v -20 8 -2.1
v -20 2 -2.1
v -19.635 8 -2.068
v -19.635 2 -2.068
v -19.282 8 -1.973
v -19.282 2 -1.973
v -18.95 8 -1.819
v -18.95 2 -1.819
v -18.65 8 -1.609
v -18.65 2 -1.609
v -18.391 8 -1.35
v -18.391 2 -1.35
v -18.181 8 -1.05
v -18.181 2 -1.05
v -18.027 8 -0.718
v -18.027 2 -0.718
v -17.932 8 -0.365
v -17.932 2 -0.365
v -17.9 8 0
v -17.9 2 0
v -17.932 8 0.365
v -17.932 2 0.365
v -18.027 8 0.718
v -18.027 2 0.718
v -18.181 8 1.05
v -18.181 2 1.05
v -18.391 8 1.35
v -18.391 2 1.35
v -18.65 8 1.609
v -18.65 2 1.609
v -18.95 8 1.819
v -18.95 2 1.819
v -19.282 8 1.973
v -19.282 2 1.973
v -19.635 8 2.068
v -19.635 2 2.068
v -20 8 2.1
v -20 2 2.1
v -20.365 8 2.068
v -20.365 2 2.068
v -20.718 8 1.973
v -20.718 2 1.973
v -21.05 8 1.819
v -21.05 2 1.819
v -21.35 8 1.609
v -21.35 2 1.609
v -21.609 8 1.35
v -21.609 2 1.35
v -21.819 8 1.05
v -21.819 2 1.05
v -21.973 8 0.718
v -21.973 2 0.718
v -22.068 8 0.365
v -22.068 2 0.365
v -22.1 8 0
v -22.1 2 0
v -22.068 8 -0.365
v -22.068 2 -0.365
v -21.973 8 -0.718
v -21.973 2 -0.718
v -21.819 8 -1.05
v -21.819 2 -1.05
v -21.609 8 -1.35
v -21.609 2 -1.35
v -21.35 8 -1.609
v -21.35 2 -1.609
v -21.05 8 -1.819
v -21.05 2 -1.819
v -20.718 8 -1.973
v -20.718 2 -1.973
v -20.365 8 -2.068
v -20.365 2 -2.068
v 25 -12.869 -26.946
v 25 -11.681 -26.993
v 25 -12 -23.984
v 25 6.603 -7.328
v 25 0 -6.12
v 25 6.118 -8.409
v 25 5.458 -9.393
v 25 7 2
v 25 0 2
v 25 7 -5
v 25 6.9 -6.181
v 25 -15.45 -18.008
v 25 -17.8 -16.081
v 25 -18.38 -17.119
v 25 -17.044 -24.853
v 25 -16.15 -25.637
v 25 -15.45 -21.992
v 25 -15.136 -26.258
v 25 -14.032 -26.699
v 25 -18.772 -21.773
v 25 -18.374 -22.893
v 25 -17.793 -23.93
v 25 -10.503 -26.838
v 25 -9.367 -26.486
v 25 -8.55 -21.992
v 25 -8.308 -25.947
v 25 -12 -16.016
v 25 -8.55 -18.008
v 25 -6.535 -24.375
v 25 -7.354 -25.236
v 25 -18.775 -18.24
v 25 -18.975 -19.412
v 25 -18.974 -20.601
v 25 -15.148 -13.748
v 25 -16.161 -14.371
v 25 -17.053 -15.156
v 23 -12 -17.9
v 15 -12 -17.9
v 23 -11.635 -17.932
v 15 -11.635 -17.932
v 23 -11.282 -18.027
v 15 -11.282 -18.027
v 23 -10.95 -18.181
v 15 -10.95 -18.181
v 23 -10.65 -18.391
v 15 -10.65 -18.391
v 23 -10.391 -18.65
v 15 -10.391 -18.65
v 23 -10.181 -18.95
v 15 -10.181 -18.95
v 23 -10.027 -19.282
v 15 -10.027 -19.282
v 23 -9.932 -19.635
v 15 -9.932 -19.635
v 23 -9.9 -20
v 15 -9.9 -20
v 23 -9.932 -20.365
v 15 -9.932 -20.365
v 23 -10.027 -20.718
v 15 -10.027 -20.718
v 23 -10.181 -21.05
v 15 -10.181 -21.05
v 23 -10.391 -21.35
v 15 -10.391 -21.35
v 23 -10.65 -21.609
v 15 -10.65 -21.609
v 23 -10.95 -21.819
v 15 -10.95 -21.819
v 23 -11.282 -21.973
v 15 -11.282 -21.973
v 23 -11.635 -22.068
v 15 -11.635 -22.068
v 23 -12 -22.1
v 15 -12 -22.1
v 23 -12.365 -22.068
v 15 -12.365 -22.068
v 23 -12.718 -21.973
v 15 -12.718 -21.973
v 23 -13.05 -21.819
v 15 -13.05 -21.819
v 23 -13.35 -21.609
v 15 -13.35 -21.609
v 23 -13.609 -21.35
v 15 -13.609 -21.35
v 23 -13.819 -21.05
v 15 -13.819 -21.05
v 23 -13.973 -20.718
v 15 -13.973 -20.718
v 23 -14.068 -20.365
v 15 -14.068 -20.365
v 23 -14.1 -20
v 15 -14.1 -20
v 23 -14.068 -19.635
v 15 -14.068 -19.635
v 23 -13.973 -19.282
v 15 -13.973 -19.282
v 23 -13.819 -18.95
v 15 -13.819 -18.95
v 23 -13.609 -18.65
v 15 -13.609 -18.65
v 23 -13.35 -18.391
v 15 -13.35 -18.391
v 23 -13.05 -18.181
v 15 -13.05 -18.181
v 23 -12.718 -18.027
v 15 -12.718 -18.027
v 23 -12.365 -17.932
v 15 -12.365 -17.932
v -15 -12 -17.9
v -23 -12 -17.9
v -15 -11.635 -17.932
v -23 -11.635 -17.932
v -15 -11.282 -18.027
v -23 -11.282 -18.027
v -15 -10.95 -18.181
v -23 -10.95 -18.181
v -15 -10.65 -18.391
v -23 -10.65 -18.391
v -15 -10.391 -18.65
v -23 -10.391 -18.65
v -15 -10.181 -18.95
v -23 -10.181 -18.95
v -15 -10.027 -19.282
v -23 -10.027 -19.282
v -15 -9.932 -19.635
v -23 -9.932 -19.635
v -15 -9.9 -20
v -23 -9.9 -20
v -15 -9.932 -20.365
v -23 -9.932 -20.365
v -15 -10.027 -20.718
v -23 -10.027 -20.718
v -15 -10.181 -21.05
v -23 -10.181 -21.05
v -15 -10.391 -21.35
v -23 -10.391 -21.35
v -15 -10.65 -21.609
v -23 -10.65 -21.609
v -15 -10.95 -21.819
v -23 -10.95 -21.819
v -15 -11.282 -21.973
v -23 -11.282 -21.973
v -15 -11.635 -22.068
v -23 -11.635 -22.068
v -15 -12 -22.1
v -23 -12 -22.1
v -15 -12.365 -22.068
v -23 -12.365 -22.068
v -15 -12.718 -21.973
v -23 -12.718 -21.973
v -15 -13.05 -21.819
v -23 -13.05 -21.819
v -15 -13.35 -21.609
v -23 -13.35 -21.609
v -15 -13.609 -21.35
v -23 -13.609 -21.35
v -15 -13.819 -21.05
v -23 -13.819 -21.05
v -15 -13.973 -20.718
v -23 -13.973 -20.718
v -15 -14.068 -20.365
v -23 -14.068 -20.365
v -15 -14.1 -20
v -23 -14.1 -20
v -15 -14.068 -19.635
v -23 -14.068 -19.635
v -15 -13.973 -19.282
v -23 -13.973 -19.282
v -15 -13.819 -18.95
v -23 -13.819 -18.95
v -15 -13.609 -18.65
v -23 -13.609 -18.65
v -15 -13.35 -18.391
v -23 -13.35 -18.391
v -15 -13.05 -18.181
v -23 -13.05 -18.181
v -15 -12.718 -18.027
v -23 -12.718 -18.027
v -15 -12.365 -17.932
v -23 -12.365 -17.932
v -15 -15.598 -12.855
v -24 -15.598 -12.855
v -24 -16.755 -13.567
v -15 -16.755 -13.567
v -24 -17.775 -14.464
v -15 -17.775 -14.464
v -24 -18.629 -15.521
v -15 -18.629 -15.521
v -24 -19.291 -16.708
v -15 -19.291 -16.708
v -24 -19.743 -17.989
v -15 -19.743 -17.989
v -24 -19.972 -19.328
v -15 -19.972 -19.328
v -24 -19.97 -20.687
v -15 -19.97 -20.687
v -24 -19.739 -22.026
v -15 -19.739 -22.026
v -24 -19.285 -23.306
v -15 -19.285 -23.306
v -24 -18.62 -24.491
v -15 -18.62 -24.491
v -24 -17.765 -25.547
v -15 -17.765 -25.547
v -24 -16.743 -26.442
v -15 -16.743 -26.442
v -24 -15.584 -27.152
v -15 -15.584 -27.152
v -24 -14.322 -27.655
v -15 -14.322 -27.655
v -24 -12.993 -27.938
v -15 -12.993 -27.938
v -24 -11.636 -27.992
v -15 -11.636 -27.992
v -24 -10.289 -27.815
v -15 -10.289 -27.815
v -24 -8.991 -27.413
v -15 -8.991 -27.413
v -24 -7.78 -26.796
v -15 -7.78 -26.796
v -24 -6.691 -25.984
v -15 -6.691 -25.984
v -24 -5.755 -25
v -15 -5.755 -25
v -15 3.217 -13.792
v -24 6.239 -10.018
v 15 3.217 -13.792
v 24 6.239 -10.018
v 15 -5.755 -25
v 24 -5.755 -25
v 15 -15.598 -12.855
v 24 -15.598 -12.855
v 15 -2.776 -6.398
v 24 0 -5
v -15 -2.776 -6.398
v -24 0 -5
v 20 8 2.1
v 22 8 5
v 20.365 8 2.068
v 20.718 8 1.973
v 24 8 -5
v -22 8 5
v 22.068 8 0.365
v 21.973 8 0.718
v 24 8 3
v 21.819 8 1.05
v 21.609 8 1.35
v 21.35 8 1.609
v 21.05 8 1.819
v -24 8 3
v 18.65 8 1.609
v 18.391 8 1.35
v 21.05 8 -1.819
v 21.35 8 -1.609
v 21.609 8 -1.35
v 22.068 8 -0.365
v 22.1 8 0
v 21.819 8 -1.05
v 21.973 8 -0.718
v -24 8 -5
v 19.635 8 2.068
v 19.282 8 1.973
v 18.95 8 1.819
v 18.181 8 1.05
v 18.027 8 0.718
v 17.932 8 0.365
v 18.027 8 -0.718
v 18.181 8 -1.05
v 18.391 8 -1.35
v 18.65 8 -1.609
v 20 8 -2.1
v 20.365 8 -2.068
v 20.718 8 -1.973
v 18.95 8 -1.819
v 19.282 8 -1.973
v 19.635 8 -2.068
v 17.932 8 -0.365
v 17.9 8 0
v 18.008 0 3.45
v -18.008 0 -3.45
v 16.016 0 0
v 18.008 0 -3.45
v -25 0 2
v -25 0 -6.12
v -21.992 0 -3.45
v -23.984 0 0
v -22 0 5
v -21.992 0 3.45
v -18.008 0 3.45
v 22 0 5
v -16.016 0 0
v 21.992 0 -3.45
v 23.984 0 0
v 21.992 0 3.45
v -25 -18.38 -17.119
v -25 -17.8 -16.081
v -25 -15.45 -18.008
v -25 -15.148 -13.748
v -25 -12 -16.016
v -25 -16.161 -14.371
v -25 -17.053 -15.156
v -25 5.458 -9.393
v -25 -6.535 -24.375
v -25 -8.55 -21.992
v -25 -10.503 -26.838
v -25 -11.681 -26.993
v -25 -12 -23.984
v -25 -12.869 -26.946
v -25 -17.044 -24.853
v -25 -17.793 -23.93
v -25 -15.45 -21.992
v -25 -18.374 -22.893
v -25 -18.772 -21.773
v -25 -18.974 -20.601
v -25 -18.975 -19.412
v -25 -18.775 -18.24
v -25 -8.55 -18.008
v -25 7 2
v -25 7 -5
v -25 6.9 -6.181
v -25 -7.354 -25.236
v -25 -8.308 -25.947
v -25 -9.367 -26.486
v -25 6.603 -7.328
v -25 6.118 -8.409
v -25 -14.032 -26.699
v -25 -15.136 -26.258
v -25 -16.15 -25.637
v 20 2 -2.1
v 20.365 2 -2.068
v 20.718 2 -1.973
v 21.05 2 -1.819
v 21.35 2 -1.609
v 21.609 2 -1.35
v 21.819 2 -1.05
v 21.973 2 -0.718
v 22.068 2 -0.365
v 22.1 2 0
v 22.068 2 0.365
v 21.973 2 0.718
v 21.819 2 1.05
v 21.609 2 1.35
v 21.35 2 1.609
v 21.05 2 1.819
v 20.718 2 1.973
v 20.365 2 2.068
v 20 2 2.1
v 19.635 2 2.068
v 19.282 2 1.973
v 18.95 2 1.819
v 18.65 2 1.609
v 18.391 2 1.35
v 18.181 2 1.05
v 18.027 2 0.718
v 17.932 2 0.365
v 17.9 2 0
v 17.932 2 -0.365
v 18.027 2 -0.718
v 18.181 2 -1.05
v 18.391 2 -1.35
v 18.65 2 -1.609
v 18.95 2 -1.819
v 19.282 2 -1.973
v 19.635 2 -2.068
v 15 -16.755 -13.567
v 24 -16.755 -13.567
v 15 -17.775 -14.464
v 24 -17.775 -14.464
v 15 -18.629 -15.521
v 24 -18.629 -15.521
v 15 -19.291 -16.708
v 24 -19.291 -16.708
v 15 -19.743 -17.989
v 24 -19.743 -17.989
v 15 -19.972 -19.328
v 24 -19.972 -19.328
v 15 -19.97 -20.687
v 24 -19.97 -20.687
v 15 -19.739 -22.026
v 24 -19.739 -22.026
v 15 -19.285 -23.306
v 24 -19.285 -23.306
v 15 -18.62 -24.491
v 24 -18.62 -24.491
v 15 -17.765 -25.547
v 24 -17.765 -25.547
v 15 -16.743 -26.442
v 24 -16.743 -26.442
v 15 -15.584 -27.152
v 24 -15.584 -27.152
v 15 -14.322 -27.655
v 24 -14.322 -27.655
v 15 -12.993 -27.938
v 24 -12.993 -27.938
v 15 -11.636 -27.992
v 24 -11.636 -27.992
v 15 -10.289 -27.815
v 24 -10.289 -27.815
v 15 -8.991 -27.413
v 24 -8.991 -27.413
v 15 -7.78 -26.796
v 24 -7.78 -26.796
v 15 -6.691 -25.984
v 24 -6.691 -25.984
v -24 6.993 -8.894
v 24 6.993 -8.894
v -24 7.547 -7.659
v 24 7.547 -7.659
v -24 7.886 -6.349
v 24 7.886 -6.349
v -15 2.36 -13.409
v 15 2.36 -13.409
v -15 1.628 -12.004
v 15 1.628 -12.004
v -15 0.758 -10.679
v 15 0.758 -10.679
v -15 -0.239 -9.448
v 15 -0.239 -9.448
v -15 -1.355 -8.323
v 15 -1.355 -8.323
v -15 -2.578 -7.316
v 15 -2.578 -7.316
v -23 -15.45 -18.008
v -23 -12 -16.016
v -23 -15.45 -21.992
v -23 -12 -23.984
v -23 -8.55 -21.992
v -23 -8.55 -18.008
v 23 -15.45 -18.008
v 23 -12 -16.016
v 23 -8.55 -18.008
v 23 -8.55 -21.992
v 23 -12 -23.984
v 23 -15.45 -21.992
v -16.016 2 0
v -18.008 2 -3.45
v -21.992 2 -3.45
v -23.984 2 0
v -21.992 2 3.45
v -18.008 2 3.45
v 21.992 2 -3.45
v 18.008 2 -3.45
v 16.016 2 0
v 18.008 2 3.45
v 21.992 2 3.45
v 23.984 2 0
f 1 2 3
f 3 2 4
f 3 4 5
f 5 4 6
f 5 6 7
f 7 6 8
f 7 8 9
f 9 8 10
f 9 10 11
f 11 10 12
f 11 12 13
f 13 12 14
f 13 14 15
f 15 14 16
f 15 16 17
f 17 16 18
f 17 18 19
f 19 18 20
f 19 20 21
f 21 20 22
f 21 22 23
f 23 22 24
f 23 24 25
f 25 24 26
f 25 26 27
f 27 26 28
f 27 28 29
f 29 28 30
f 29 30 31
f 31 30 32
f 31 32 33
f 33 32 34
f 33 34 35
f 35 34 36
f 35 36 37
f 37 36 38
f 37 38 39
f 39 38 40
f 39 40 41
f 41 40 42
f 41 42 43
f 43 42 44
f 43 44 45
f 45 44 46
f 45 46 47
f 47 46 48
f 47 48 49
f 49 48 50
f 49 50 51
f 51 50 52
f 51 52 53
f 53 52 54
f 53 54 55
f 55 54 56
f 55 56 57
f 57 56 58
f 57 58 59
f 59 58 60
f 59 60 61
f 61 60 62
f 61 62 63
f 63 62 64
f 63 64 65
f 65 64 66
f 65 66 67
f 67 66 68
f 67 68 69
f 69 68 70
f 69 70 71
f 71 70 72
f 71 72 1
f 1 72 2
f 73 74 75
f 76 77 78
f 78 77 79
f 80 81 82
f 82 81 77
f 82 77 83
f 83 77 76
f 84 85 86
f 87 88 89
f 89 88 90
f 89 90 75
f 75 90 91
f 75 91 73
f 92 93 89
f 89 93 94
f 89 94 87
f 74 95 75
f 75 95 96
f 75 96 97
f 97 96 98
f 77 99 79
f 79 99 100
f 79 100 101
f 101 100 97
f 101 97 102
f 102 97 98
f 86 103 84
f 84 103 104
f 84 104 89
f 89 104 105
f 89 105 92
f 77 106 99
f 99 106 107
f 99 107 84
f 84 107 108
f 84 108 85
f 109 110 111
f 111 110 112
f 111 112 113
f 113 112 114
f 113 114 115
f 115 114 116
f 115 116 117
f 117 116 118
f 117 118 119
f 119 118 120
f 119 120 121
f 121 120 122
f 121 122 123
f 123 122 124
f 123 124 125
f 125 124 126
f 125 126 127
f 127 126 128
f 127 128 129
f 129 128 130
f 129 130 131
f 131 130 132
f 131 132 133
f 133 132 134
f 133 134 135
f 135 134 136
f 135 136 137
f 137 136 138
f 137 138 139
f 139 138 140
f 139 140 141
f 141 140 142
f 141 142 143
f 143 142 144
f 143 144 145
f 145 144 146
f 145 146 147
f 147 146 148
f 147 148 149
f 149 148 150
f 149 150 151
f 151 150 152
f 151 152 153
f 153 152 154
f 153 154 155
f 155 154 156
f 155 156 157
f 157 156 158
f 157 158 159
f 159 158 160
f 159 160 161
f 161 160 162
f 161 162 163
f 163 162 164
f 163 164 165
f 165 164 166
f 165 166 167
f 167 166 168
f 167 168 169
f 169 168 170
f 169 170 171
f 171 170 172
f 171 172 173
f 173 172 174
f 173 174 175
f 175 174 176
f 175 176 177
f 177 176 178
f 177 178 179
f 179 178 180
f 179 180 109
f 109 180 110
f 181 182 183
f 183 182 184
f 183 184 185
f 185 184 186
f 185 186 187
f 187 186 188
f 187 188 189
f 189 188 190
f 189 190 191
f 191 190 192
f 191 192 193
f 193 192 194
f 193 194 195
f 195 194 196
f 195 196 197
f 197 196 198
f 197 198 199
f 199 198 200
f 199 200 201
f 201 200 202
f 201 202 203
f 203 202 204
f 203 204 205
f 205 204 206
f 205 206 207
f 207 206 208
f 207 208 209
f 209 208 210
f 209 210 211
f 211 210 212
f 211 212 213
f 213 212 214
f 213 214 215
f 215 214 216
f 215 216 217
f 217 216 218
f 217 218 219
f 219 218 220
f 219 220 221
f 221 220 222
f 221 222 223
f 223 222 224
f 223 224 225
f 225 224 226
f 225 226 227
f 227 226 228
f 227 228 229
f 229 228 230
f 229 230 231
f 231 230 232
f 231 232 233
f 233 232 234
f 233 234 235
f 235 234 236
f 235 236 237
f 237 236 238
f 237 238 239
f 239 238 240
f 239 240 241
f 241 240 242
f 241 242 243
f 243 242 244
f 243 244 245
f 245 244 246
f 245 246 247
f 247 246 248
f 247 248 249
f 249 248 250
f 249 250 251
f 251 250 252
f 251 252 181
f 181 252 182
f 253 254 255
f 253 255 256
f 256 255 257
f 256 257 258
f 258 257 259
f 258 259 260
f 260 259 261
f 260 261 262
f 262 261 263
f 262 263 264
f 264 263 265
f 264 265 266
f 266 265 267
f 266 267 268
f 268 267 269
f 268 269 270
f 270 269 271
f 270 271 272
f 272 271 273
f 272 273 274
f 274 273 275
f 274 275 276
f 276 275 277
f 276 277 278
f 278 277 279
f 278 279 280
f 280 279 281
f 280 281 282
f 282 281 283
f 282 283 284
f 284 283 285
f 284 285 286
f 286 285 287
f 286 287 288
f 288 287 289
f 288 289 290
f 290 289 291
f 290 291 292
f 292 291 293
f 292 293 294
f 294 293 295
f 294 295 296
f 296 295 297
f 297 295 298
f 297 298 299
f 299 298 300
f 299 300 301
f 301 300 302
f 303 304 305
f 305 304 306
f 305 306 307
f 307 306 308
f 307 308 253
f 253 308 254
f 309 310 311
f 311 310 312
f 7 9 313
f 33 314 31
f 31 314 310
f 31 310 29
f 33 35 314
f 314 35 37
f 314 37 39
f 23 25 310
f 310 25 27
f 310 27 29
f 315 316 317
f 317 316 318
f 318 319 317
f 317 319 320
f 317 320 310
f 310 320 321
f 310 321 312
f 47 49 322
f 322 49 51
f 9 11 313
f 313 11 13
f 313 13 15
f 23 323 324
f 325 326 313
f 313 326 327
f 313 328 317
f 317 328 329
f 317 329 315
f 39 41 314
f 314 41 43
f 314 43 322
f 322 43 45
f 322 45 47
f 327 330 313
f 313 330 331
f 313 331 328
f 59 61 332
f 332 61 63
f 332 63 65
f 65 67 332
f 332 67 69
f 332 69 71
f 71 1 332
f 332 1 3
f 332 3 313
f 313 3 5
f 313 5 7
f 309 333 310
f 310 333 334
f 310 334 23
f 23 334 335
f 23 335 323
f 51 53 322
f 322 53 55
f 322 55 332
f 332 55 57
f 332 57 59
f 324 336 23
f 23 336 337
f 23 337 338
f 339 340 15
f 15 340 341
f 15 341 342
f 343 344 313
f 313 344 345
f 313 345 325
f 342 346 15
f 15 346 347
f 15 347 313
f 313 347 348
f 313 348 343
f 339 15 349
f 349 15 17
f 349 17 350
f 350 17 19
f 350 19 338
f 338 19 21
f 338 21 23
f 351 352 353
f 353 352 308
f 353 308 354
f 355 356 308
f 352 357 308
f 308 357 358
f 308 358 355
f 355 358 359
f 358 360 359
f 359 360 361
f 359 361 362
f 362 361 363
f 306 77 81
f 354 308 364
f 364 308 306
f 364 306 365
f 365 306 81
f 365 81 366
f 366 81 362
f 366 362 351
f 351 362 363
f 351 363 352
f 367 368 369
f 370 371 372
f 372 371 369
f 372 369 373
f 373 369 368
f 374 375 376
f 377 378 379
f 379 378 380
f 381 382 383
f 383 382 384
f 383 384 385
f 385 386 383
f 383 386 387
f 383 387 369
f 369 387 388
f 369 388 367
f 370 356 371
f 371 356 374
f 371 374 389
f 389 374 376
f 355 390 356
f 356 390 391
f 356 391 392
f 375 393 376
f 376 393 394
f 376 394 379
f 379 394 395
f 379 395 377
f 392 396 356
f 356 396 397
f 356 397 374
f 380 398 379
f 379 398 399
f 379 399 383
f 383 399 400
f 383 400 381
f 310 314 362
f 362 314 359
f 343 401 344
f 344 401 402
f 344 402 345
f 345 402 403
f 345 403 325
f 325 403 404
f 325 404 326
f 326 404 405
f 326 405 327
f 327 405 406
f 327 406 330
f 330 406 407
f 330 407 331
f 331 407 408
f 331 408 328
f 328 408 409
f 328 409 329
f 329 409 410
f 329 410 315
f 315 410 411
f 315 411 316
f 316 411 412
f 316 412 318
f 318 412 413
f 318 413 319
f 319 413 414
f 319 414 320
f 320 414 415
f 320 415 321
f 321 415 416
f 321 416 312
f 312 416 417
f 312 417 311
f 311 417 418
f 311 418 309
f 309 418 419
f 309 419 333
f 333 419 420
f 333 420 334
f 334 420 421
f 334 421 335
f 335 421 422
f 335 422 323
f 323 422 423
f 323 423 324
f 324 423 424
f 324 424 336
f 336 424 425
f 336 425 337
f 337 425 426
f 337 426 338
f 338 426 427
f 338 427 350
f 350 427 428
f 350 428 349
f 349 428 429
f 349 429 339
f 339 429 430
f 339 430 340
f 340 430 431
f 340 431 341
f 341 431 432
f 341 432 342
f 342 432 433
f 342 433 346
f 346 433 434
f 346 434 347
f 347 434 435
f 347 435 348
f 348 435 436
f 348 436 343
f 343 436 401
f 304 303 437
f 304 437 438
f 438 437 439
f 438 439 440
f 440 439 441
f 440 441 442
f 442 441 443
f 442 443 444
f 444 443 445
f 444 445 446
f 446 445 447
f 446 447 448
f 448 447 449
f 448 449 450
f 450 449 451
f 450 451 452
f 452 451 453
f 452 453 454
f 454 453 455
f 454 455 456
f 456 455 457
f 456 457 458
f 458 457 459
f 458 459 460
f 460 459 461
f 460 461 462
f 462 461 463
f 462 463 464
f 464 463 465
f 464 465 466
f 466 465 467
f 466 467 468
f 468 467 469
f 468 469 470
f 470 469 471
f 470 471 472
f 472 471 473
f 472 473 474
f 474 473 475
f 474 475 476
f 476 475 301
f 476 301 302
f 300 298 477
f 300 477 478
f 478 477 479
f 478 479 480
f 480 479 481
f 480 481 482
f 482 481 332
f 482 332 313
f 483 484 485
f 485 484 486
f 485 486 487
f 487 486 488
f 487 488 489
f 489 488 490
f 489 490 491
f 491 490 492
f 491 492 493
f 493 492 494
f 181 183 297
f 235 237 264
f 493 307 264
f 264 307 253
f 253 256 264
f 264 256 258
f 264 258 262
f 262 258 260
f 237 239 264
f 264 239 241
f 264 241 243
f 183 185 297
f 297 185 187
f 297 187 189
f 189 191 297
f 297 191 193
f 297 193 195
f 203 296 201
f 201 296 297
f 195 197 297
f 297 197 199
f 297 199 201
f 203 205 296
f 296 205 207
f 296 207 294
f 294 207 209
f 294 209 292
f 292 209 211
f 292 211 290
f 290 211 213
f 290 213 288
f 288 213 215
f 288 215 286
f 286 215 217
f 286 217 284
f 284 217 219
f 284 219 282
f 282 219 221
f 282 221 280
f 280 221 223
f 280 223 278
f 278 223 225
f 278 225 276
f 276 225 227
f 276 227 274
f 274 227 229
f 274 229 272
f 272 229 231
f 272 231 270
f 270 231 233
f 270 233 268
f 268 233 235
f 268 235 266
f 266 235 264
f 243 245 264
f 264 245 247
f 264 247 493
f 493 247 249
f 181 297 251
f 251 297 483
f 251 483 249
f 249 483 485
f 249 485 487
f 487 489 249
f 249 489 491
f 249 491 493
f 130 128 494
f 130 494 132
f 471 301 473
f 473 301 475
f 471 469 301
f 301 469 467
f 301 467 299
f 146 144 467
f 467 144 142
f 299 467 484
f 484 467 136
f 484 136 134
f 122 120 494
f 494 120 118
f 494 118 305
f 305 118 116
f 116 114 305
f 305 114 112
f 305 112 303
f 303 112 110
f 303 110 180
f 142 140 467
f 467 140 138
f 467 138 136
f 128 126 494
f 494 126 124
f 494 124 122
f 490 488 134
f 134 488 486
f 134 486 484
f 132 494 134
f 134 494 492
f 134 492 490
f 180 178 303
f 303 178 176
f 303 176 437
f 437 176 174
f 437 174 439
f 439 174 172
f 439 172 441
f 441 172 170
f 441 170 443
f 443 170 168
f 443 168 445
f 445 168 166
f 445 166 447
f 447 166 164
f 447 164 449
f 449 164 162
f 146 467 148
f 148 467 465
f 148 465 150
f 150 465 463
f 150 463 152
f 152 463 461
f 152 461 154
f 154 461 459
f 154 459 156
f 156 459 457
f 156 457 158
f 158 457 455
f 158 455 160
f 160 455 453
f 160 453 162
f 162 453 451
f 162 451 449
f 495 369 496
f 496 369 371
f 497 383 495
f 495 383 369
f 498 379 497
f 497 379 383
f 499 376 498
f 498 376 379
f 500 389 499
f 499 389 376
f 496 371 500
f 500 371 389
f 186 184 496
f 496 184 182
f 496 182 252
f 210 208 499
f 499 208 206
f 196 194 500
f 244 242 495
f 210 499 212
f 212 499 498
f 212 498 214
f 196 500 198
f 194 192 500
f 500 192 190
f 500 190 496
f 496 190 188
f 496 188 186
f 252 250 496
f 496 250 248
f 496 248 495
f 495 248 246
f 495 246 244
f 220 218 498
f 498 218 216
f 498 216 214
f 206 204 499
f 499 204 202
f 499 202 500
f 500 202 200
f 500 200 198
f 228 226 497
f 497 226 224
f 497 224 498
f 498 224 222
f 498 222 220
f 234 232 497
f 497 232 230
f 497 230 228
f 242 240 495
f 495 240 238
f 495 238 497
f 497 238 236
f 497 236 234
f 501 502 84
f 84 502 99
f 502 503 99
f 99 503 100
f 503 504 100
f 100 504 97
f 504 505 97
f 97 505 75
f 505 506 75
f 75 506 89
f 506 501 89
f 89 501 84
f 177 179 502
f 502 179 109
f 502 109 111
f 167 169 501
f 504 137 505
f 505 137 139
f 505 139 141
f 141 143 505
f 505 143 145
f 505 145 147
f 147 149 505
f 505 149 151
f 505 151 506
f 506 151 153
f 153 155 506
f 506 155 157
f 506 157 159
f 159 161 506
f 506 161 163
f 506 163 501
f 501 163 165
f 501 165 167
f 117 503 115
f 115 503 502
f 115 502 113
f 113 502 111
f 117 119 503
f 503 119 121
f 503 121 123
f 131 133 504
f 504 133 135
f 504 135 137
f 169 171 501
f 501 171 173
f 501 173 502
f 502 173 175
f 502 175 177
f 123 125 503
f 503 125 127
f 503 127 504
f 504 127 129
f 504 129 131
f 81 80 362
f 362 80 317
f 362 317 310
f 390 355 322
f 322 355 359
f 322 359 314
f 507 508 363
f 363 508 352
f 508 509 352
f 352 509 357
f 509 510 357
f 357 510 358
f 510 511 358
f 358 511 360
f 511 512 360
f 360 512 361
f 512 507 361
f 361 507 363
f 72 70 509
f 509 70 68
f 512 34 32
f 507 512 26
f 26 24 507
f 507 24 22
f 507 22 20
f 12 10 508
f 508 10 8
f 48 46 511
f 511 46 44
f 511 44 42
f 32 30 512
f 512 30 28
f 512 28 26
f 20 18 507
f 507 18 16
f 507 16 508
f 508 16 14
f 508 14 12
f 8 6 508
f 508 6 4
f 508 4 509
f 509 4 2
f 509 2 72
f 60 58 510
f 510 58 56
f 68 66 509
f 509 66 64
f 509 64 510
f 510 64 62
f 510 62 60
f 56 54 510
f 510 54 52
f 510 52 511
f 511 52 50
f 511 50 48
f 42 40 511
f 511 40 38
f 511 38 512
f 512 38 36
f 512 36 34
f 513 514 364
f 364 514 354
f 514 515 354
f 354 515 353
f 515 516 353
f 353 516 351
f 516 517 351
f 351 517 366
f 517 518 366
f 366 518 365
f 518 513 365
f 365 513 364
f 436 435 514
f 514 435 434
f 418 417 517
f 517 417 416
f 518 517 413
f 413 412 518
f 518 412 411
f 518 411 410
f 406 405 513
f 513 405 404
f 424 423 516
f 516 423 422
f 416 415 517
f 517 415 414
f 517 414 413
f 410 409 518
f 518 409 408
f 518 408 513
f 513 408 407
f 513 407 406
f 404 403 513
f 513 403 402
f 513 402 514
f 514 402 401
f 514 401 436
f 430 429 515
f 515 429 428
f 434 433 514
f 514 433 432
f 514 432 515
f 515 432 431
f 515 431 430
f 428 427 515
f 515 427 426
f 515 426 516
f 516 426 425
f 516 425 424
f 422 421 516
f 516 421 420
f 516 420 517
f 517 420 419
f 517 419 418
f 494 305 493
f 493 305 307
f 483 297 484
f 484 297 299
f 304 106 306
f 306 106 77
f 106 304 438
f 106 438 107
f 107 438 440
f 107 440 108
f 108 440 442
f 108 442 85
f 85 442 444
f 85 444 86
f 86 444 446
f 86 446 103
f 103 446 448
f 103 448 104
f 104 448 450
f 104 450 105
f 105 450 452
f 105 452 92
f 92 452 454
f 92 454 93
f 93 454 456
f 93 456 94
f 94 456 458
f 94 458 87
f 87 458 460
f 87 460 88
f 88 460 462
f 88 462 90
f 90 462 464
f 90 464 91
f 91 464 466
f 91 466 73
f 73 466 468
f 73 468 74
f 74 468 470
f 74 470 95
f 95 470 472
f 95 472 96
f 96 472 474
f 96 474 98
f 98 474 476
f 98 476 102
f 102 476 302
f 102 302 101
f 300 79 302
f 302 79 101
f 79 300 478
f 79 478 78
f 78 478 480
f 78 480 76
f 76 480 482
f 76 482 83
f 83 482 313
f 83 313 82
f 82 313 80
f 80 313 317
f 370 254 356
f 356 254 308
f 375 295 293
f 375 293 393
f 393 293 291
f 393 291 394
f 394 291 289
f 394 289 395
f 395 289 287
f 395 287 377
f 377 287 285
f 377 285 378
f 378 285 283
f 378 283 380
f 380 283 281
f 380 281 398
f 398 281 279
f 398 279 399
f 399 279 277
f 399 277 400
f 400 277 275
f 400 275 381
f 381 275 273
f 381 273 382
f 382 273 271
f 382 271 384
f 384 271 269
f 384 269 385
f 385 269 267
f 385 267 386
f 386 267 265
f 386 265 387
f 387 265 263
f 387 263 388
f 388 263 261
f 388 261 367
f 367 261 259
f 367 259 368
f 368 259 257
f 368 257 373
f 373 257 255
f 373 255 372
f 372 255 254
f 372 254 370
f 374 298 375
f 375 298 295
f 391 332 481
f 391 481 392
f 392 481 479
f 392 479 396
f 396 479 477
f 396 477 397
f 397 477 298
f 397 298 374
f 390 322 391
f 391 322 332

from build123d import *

# Parameters (mm, degrees)
CROQUIS1_W              = 50
CROQUIS1_H              = 10
CROQUIS1_R              = 2.1
SALIENTE_EXTRUIR1_DEPTH = 8
CROQUIS4_R              = 2.1
SALIENTE_EXTRUIR2_DEPTH = 25
CROQUIS5_R              = 15.800490208
CORTAR_EXTRUIR1_DEPTH   = 15
CORTAR_EXTRUIR2_DEPTH   = 2
CHAFL_N1_SIZE           = 3
CORTAR_EXTRUIR3_DEPTH   = 2
CHAFL_N2_SIZE           = 1
CHAFL_N2_SIZE_2         = 0.730640075


with BuildPart() as part:
    # Croquis1 → Saliente-Extruir1 (new body)
    with BuildSketch(Plane(origin=(0, 0, 0), x_dir=(1, 0, 0), z_dir=(0, 1, 0))):
        Rectangle(CROQUIS1_W, CROQUIS1_H)
        with Locations(Location((20, 0, 0), (0, 0, 270))):
            Circle(CROQUIS1_R, mode=Mode.SUBTRACT)
        with Locations(Location((-20, 0, 0), (0, 0, 90))):
            Circle(CROQUIS1_R, mode=Mode.SUBTRACT)
    extrude(amount=SALIENTE_EXTRUIR1_DEPTH)

    # Croquis4 → Saliente-Extruir2 (add, symmetric)
    with BuildSketch(Plane(origin=(0, 0, 0), x_dir=(0, 0, -1), z_dir=(1, 0, 0))):
        with BuildLine():
            Line((5, 8), (5, 0))
            Line((5, 0), (12.854829477, -15.59812982))
            ThreePointArc((12.854829477, -15.59812982), (25.037274777, -18.214970863), (24.999619637, -5.754697487))
            Line((24.999619637, -5.754697487), (10.01766425, 6.238969464))
            ThreePointArc((10.01766425, 6.238969464), (7.658861743, 7.54696071), (5, 8))
        make_face()
        with Locations((20, -12)):
            Circle(CROQUIS4_R, mode=Mode.SUBTRACT)
    extrude(amount=SALIENTE_EXTRUIR2_DEPTH, both=True)

    # Croquis5 → Cortar-Extruir1 (cut, symmetric)
    with BuildSketch(Plane(origin=(0, 0, 0), x_dir=(0, 0, -1), z_dir=(1, 0, 0))):
        with Locations((20, -12)):
            Circle(CROQUIS5_R)
    extrude(amount=CORTAR_EXTRUIR1_DEPTH, both=True, mode=Mode.SUBTRACT)

    # Croquis6 → Cortar-Extruir2 (cut, symmetric)
    with BuildSketch(Plane.ZY.offset(25)):
        Polygon((-16.016283143, -12), (-18.008141571, -8.55), (-21.991858429, -8.55), (-23.983716857, -12), (-21.991858429, -15.45), (-18.008141571, -15.45), align=None)
    cortar_extruir2 = extrude(amount=CORTAR_EXTRUIR2_DEPTH, both=True, mode=Mode.SUBTRACT)

    # Simetría1: Cortar-Extruir2 across plane
    add(cortar_extruir2.mirror(Plane(origin=(0, 0, 0), x_dir=(0, 0, 1), z_dir=(1, 0, 0))), mode=Mode.SUBTRACT)

    # Chaflán1
    chafl_n1_edges = [part.edges().sort_by_distance(p)[0] for p in [
        (25, 4, 5),
        (-25, 4, 5),
    ]]
    chamfer(chafl_n1_edges, length=CHAFL_N1_SIZE)

    # Croquis7 → Cortar-Extruir3 (cut, symmetric)
    with BuildSketch(Plane.XZ):
        Polygon((-16.016283143, 0), (-18.008141571, 3.45), (-21.991858429, 3.45), (-23.983716857, 0), (-21.991858429, -3.45), (-18.008141571, -3.45), align=None)
        Polygon((18.008141571, -3.45), (16.016283143, 0), (18.008141571, 3.45), (21.991858429, 3.45), (23.983716857, 0), (21.991858429, -3.45), align=None)
    extrude(amount=CORTAR_EXTRUIR3_DEPTH, both=True, mode=Mode.SUBTRACT)

    # Chaflán2
    # the kernel refuses this chamfer: 1, 0.730640075 mm, written as the material it takes off along each edge
    with BuildSketch(Plane(origin=(25, 8, -5), x_dir=(0, -1, 0), z_dir=(0, 0, 1))) as chafl_n2_piece_1:
        Polygon((CHAFL_N2_SIZE, 0), (0, -CHAFL_N2_SIZE), (0, 0), align=None)
    extrude(amount=9.571682988, mode=Mode.SUBTRACT)
    with BuildSketch(Plane(origin=(-25, 8, 4.571682988), x_dir=(1, 0, 0), z_dir=(0, 0, -1))) as chafl_n2_piece_2:
        Polygon((CHAFL_N2_SIZE, 0), (0, CHAFL_N2_SIZE), (0, 0), align=None)
    extrude(amount=9.571682988, mode=Mode.SUBTRACT)
    with BuildSketch(Plane(origin=(25, -12, -20), x_dir=(0, -0.44976622750296646, 0.8931463153357069), z_dir=(0, 0.8931463153357069, 0.44976622750296646))) as chafl_n2_piece_3:
        Polygon((8 - CHAFL_N2_SIZE, 0), (8, -CHAFL_N2_SIZE), (8, 0), align=None)
    revolve(axis=Axis((25, -12, -20), (1, 0, 0)), revolution_arc=204.592615825, mode=Mode.SUBTRACT)
    with BuildSketch(Plane(origin=(25, -5.754697487, -24.999619637), x_dir=(0, -0.7806628141857404, 0.6249524546296304), z_dir=(0, 0.6249524546296304, 0.7806628141857404)), Plane(origin=(-25, -5.754697487, -24.999619637), x_dir=(1, 0, 0), z_dir=(0, 0.6249524546296304, 0.7806628141857404))) as chafl_n2_piece_4:
        Polygon((CHAFL_N2_SIZE, 0), (0, -CHAFL_N2_SIZE), (0, 0), align=None)
    extrude(amount=19.191327055, mode=Mode.SUBTRACT)
    with BuildSketch(Plane(origin=(25, -0.028873577, -5), x_dir=(0, 0.7806628141857421, -0.6249524546296281), z_dir=(0, -0.6249524546296281, -0.7806628141857421))) as chafl_n2_piece_5:
        Polygon((8.028873577 - CHAFL_N2_SIZE, 0), (8.028873577, -CHAFL_N2_SIZE), (8.028873577, 0), align=None)
    revolve(axis=Axis((25, -0.028873577, -5), (1, 0, 0)), revolution_arc=38.678697835, mode=Mode.SUBTRACT)
    with BuildSketch(Plane(origin=(25, 2.296889185, -3.843343844), x_dir=(0, 0.44976622750296674, -0.8931463153357067), z_dir=(0, -0.8931463153357067, -0.44976622750296674))) as chafl_n2_piece_6_section:
        Polygon((CHAFL_N2_SIZE, 0), (0, -CHAFL_N2_SIZE), (0, 0), align=None)
    chafl_n2_piece_6 = extrude(amount=20.035932185, mode=Mode.PRIVATE)
    chafl_n2_piece_6 = split(chafl_n2_piece_6, bisect_by=Plane(origin=(25, 0, -3.843343844), z_dir=(0, -1, 0)), keep=Keep.TOP, mode=Mode.PRIVATE)
    add(chafl_n2_piece_6, mode=Mode.SUBTRACT)
    with BuildSketch(Plane(origin=(-25, -12, -20), x_dir=(0, -0.44976622750296646, 0.8931463153357069), z_dir=(0, 0.8931463153357069, 0.44976622750296646))) as chafl_n2_piece_7:
        Polygon((8 - CHAFL_N2_SIZE, 0), (8, CHAFL_N2_SIZE), (8, 0), align=None)
    revolve(axis=Axis((-25, -12, -20), (1, 0, 0)), revolution_arc=204.592615825, mode=Mode.SUBTRACT)
    with BuildSketch(Plane(origin=(-25, -0.028873577, -5), x_dir=(0, 0.7806628141857421, -0.6249524546296281), z_dir=(0, -0.6249524546296281, -0.7806628141857421))) as chafl_n2_piece_8:
        Polygon((8.028873577, CHAFL_N2_SIZE), (8.028873577 - CHAFL_N2_SIZE, 0), (8.028873577, 0), align=None)
    revolve(axis=Axis((-25, -0.028873577, -5), (1, 0, 0)), revolution_arc=38.678697835, mode=Mode.SUBTRACT)
    with BuildSketch(Plane(origin=(-25, 2.296889185, -3.843343844), x_dir=(1, 0, 0), z_dir=(0, -0.8931463153357067, -0.44976622750296674))) as chafl_n2_piece_9_section:
        Polygon((CHAFL_N2_SIZE, 0), (0, -CHAFL_N2_SIZE), (0, 0), align=None)
    chafl_n2_piece_9 = extrude(amount=20.035932185, mode=Mode.PRIVATE)
    chafl_n2_piece_9 = split(chafl_n2_piece_9, bisect_by=Plane(origin=(-25, 0, -3.843343844), z_dir=(0, -1, 0)), keep=Keep.TOP, mode=Mode.PRIVATE)
    add(chafl_n2_piece_9, mode=Mode.SUBTRACT)
    with BuildSketch(Plane(origin=(-15, -3.428524041, -6.72651927), x_dir=(0, 0.8931463153357074, 0.44976622750296513), z_dir=(1, 0, 0))) as chafl_n2_piece_10:
        with BuildLine():
            Line((CHAFL_N2_SIZE_2, 0), (0.494257976, -0.908692648))
            ThreePointArc((0.494257976, -0.908692648), (0.261545908, -0.46314506), (0, 0))
            Line((0, 0), (CHAFL_N2_SIZE_2, 0))
        make_face()
    extrude(amount=30, mode=Mode.SUBTRACT)
    with BuildSketch(Plane(origin=(-15, 2.760620634, -14.362662924), x_dir=(0, 0.6249524546296293, 0.7806628141857411), z_dir=(1, 0, 0))) as chafl_n2_piece_11:
        with BuildLine():
            Line((CHAFL_N2_SIZE_2, 0), (0.494257976, 0.908692648))
            ThreePointArc((0.494257976, 0.908692648), (0.261545908, 0.46314506), (0, 0))
            Line((0, 0), (CHAFL_N2_SIZE_2, 0))
        make_face()
    extrude(amount=30, mode=Mode.SUBTRACT)


solid = part.part
